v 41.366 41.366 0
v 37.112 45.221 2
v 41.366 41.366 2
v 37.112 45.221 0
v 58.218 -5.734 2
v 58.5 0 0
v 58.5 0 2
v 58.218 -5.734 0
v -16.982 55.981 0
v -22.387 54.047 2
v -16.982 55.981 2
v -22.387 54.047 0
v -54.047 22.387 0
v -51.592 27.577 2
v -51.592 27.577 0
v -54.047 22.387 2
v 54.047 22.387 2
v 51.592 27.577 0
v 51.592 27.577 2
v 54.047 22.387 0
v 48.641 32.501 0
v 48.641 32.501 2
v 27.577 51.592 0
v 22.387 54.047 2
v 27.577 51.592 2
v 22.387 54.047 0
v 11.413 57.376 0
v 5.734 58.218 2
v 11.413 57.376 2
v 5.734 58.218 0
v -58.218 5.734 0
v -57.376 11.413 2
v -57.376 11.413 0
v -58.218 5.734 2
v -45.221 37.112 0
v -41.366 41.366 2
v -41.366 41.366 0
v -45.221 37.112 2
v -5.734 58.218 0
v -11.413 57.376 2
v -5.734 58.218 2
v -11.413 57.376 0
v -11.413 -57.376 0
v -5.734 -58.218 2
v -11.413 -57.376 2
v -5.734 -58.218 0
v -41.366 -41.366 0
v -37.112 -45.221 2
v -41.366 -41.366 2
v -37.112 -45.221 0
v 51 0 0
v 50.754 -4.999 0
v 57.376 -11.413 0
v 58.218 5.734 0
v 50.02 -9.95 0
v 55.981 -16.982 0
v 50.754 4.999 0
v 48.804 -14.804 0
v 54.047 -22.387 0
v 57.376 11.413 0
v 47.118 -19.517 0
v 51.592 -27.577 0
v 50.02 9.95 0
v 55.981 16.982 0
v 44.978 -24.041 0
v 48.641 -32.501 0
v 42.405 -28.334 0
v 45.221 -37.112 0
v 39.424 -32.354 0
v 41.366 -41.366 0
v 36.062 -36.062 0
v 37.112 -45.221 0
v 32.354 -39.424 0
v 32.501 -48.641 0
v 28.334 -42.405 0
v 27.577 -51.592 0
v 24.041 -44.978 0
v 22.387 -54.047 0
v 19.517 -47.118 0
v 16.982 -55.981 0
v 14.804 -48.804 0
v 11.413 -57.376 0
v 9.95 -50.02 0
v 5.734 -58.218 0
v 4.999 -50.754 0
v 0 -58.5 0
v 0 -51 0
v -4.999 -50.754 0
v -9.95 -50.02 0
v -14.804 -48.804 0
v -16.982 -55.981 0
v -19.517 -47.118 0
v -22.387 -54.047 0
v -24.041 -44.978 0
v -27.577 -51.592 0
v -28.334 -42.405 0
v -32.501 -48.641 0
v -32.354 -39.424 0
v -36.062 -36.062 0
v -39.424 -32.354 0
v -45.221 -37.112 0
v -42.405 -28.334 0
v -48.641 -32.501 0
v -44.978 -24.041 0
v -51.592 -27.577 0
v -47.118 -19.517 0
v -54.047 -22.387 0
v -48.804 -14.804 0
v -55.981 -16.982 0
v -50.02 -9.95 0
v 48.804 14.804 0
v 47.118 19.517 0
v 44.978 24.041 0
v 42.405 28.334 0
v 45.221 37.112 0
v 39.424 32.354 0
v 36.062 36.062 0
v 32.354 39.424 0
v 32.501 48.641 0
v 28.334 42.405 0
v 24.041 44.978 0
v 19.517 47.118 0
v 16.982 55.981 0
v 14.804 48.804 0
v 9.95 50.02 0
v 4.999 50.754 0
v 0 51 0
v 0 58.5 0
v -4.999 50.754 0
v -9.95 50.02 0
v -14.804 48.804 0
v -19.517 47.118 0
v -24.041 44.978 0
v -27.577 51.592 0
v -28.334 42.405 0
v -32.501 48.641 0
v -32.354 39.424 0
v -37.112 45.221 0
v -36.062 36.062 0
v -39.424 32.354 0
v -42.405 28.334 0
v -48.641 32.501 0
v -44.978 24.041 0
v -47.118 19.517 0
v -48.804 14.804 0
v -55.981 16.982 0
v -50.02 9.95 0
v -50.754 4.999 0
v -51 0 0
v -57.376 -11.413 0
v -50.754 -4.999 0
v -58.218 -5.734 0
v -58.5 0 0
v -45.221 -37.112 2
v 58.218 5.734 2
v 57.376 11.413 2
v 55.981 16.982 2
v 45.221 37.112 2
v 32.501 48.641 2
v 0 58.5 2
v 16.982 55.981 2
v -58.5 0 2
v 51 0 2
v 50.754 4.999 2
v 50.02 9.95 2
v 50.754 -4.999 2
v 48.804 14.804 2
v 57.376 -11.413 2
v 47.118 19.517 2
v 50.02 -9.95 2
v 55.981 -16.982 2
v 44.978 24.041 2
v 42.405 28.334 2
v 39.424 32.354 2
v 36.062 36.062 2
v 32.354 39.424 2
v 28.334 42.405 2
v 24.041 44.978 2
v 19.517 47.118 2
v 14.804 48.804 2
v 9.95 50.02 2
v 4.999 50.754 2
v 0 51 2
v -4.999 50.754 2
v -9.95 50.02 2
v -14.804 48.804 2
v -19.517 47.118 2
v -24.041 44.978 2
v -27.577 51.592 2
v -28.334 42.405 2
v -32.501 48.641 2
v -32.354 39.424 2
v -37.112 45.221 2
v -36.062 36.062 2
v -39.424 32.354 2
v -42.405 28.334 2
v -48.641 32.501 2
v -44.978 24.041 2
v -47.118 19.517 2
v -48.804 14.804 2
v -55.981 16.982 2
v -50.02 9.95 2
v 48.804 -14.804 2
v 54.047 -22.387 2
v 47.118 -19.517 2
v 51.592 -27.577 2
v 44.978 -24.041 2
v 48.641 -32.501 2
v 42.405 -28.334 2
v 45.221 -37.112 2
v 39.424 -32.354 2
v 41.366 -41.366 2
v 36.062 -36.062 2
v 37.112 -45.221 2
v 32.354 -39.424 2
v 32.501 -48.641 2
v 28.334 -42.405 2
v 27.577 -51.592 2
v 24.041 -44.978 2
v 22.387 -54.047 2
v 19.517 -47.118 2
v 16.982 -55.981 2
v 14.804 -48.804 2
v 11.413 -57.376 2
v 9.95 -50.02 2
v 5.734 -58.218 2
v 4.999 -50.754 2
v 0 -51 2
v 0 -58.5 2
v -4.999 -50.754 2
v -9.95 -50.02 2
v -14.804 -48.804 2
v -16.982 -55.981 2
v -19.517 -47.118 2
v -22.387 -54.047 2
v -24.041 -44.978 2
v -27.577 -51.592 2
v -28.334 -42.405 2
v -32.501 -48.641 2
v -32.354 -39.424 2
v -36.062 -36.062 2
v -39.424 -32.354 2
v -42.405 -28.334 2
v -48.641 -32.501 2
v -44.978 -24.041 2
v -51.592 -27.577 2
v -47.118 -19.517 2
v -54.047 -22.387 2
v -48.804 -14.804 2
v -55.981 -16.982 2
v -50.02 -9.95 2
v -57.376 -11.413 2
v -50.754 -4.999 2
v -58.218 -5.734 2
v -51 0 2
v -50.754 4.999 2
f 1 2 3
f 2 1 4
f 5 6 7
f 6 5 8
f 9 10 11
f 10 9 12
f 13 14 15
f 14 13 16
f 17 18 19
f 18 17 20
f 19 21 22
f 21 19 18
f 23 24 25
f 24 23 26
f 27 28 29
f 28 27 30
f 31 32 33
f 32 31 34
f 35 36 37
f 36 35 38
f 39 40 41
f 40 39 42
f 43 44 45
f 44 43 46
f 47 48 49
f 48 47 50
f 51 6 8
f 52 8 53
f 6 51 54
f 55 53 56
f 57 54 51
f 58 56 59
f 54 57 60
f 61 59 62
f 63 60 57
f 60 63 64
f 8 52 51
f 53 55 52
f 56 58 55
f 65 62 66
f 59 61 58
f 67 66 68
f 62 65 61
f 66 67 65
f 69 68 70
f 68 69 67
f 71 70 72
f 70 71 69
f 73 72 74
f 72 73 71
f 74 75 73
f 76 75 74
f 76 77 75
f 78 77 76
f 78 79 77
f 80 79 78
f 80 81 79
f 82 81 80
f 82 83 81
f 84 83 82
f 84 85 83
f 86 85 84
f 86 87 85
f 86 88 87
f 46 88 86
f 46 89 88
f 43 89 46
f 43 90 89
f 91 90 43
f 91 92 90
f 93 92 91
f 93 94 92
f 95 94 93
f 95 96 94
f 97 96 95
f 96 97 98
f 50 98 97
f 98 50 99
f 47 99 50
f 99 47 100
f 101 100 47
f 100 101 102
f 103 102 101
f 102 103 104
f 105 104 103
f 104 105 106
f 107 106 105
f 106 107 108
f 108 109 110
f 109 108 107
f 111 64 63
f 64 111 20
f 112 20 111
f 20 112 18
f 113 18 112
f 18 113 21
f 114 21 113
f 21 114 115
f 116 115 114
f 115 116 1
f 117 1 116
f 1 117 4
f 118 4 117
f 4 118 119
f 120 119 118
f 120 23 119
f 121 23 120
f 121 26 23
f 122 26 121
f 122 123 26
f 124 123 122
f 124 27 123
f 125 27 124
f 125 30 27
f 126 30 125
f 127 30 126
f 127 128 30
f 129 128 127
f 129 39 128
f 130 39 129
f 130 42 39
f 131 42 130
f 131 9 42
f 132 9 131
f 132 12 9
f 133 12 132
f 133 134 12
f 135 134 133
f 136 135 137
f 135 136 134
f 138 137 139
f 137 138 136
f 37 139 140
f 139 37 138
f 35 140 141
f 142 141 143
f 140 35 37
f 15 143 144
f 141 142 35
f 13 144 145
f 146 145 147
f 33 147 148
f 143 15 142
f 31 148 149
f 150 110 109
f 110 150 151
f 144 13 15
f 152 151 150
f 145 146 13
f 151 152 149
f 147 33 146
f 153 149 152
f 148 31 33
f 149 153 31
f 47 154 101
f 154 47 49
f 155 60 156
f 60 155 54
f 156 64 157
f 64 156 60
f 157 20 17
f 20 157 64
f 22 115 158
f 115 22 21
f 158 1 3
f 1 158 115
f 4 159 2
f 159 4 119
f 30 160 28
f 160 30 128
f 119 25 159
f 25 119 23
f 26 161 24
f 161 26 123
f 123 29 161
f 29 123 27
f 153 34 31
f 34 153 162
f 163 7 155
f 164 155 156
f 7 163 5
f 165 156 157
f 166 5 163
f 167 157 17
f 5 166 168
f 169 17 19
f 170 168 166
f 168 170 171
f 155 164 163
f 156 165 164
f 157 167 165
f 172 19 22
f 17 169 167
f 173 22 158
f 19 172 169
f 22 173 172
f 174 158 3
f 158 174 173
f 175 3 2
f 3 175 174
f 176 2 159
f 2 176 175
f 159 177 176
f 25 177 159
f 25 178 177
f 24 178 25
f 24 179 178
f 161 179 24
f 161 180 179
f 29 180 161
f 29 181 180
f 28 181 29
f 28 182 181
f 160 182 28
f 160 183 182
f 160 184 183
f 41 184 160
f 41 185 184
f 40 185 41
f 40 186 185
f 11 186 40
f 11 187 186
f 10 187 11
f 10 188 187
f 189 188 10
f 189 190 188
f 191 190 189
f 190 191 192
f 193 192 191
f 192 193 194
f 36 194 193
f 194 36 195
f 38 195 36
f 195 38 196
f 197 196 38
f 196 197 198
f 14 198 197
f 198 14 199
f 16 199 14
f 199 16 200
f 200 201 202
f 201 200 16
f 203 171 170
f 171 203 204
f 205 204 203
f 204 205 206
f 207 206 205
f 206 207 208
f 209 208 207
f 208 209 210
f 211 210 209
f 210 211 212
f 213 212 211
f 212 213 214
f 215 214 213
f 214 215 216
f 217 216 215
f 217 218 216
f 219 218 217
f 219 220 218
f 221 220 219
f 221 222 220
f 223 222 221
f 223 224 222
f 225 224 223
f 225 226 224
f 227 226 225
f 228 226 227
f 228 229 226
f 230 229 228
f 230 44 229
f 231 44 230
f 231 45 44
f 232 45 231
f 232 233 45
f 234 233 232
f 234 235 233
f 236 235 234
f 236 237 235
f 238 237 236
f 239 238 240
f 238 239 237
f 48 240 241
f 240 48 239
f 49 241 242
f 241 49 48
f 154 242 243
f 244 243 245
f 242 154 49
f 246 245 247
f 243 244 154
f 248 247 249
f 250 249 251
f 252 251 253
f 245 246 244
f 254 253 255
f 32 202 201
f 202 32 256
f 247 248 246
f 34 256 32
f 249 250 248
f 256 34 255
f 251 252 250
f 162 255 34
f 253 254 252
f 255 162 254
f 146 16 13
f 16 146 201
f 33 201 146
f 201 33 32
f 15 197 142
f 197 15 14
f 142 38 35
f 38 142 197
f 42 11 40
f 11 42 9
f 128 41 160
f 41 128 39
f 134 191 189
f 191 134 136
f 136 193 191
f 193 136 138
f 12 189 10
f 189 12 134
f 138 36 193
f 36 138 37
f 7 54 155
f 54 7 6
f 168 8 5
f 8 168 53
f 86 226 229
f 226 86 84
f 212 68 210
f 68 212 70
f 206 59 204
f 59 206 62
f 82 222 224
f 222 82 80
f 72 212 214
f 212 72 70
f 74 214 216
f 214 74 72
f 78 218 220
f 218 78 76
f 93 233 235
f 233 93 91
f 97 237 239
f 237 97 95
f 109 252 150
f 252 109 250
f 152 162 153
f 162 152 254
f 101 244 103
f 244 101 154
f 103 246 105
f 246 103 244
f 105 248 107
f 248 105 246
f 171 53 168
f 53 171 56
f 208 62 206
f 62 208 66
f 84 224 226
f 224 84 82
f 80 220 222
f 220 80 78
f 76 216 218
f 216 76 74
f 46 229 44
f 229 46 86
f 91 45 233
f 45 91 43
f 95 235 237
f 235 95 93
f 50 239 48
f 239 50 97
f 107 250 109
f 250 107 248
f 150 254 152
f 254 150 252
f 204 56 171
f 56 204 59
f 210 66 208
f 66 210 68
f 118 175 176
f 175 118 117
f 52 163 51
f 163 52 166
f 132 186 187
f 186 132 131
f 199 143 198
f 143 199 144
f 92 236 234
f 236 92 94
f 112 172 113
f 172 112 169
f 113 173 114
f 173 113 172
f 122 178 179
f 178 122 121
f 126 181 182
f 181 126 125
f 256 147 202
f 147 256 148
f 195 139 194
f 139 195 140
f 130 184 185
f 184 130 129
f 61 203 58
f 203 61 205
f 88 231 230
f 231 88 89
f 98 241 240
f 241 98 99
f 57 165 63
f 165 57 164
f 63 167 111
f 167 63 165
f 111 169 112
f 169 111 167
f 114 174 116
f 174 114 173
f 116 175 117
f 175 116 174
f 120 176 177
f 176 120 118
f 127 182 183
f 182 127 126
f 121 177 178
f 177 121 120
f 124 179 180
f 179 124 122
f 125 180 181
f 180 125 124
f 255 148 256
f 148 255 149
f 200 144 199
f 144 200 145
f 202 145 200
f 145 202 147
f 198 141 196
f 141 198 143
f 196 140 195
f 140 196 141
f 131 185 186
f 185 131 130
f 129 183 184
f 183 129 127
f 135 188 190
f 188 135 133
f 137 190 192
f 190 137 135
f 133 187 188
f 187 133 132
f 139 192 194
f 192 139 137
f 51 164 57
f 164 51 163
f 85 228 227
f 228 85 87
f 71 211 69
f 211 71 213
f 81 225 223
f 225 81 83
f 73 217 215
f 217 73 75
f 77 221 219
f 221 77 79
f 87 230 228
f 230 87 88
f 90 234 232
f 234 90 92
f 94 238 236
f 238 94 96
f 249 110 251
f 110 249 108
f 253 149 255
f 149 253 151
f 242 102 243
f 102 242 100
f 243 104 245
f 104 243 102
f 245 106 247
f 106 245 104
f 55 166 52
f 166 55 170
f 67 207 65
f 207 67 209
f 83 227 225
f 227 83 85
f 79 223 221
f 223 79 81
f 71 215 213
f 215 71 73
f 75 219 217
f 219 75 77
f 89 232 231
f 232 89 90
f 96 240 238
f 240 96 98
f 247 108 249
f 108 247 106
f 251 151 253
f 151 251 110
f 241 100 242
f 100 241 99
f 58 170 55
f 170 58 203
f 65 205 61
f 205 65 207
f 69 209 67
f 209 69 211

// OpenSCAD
ring_diameter = 107;
ring_overhang = 5;

bowl_diameter = 102;
//bowl_overhang = 7.5

height = 2;
$fn = 64;

outer_radius = (ring_diameter/2) + ring_overhang;
inner_radius = bowl_diameter/2;

difference() {
    cylinder(h = height, r = outer_radius);
    cylinder(h = height, r = inner_radius);
}
